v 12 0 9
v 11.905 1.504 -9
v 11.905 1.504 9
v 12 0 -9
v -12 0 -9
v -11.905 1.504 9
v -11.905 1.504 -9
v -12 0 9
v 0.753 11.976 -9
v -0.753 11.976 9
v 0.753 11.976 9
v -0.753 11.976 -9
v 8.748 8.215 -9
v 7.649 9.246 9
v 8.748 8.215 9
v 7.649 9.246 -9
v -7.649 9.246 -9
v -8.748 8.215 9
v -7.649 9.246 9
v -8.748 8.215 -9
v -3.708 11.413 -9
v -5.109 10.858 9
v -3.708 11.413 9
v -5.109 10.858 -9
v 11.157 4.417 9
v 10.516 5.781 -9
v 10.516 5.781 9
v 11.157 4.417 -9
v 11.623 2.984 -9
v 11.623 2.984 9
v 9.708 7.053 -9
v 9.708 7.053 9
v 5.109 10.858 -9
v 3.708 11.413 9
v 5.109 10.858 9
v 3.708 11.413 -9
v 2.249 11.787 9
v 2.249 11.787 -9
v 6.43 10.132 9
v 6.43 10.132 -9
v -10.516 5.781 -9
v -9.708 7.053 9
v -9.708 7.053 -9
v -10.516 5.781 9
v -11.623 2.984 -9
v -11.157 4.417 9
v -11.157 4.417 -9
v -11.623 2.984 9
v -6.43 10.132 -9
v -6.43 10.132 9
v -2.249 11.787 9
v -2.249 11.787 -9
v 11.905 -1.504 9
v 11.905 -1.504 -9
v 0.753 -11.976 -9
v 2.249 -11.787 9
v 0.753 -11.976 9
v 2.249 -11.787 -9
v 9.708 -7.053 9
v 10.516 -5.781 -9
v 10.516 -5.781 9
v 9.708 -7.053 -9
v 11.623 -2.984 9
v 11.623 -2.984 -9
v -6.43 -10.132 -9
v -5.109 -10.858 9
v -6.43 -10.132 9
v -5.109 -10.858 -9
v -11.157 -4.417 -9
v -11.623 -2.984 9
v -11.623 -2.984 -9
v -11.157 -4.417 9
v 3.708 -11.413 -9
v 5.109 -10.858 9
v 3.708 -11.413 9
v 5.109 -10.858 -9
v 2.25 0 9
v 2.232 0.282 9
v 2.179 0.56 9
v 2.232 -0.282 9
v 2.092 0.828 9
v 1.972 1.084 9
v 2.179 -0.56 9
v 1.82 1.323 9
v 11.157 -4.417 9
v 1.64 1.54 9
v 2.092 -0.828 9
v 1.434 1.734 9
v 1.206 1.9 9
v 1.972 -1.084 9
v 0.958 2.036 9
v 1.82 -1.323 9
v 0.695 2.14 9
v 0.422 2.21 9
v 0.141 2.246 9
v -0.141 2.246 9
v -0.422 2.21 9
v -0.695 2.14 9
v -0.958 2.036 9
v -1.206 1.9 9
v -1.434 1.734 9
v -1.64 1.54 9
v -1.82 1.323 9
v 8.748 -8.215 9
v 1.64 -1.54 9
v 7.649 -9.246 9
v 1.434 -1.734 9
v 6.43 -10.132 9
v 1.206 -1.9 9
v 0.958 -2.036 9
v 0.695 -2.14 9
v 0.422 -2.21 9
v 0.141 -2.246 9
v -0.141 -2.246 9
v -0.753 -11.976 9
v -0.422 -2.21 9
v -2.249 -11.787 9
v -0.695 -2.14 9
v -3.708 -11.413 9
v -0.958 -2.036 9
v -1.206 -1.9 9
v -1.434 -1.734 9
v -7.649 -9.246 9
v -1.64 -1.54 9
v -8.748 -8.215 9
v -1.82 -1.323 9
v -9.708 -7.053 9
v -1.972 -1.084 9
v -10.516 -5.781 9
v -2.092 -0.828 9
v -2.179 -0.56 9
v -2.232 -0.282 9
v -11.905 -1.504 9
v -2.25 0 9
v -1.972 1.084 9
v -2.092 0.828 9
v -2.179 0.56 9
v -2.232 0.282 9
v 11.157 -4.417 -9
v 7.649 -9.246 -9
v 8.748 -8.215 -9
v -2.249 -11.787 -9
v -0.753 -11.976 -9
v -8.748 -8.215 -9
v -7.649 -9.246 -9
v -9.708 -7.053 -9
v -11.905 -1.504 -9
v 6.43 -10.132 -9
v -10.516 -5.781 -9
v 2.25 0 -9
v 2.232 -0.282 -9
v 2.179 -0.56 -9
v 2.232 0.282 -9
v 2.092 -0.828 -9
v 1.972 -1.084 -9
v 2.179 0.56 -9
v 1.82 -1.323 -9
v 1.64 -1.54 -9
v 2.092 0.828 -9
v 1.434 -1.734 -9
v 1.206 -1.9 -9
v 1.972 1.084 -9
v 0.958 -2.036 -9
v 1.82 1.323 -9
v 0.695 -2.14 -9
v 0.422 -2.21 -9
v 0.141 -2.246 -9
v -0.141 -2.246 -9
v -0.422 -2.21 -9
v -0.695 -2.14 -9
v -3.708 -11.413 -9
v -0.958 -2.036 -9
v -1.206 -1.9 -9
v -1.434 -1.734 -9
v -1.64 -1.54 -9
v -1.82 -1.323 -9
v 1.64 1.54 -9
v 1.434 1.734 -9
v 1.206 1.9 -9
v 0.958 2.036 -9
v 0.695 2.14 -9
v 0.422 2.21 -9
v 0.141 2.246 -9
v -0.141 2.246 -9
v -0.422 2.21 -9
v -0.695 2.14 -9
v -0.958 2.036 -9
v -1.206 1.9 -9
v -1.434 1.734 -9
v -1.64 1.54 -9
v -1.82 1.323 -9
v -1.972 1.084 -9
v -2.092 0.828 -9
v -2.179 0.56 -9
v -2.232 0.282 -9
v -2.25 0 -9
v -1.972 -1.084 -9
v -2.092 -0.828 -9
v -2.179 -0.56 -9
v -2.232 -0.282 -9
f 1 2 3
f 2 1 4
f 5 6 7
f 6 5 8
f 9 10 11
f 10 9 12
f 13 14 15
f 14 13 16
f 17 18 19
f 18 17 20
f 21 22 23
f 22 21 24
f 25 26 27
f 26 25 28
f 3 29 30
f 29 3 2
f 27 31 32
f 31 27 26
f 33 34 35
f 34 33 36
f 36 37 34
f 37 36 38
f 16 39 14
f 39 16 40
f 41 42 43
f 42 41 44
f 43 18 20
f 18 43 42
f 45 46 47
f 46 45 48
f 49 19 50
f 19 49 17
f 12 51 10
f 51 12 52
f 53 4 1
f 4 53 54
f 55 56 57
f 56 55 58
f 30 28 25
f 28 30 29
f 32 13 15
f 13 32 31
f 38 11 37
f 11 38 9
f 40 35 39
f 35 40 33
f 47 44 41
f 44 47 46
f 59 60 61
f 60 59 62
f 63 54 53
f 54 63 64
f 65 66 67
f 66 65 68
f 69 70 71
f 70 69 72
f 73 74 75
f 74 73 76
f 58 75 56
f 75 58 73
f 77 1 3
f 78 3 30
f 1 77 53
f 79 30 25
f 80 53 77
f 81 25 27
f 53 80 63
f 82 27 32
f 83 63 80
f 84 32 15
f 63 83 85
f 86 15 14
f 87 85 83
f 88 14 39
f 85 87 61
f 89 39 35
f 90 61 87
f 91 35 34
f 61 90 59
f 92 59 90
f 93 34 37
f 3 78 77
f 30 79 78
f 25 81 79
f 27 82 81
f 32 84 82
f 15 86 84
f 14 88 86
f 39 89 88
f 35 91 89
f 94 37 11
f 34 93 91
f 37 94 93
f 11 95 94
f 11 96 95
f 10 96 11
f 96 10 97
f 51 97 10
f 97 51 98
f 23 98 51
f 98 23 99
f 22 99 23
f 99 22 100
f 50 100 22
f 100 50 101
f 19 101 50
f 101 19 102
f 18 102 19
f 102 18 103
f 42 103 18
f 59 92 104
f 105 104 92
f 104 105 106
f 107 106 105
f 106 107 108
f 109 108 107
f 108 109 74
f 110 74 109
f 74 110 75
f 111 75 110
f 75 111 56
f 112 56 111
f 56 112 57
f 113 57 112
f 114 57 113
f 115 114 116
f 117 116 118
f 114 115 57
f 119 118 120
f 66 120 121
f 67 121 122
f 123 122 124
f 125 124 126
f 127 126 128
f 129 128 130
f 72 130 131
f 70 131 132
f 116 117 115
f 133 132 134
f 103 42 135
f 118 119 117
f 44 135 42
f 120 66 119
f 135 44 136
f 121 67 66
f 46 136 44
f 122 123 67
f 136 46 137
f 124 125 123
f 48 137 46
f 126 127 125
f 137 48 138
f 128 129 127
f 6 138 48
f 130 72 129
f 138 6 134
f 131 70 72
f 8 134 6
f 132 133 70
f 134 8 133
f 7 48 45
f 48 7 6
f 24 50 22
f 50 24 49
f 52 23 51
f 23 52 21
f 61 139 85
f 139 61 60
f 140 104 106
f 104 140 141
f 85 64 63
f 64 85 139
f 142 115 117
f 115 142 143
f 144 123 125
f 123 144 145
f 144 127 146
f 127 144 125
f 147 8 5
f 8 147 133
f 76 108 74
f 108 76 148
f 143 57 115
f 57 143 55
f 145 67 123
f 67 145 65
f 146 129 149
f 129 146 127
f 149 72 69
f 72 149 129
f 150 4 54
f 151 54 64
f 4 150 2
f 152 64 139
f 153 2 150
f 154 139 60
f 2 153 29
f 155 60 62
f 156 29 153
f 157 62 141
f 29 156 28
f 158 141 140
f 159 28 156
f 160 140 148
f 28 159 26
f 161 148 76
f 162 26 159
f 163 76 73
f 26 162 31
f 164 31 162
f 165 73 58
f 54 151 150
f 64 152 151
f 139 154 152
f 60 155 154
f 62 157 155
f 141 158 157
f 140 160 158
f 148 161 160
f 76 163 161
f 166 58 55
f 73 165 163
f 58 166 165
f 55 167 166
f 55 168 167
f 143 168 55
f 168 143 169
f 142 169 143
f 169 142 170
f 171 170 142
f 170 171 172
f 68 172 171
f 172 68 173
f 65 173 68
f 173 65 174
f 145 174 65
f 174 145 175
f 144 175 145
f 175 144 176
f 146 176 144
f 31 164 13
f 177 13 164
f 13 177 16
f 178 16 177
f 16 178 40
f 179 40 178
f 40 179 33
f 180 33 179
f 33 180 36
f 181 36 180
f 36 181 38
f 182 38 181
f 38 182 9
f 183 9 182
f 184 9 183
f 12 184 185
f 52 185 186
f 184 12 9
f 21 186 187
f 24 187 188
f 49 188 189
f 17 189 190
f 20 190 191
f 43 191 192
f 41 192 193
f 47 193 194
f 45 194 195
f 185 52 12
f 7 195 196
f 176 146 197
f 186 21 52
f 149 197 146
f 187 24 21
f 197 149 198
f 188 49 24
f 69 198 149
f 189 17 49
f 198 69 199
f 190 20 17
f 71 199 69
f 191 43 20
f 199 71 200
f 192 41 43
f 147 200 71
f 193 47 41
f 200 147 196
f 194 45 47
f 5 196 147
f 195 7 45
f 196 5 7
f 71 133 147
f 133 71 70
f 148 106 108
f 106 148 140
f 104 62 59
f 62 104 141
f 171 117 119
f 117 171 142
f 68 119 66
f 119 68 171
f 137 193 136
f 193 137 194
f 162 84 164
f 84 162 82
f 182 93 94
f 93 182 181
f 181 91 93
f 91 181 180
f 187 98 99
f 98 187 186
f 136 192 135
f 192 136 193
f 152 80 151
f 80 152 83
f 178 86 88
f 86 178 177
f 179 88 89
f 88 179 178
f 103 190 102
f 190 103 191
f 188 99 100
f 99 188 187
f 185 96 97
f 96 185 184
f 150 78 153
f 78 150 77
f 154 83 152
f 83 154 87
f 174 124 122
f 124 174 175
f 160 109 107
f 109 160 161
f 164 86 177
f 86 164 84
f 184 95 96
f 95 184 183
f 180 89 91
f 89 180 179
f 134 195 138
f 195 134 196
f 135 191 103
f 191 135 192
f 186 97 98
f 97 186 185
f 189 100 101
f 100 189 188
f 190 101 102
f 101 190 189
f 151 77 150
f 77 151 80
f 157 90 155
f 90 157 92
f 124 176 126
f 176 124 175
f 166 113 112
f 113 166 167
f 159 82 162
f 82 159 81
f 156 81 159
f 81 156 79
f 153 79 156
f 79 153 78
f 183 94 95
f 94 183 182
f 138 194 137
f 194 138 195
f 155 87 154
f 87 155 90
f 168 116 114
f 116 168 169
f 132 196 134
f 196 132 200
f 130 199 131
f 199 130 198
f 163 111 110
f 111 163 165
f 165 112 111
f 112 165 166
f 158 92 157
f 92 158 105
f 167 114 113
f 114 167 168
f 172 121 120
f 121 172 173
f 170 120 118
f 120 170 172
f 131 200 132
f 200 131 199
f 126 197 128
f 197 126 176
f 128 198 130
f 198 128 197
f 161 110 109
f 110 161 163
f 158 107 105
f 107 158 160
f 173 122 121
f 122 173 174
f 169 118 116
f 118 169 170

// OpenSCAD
$fn = 50;


difference() {
	union() {
		translate(v = [0, 0, -9.0000000000]) {
			cylinder(h = 18, r = 12.0000000000);
		}
	}
	union() {
		translate(v = [0, 0, -100.0000000000]) {
			cylinder(h = 200, r = 2.2500000000);
		}
	}
}
